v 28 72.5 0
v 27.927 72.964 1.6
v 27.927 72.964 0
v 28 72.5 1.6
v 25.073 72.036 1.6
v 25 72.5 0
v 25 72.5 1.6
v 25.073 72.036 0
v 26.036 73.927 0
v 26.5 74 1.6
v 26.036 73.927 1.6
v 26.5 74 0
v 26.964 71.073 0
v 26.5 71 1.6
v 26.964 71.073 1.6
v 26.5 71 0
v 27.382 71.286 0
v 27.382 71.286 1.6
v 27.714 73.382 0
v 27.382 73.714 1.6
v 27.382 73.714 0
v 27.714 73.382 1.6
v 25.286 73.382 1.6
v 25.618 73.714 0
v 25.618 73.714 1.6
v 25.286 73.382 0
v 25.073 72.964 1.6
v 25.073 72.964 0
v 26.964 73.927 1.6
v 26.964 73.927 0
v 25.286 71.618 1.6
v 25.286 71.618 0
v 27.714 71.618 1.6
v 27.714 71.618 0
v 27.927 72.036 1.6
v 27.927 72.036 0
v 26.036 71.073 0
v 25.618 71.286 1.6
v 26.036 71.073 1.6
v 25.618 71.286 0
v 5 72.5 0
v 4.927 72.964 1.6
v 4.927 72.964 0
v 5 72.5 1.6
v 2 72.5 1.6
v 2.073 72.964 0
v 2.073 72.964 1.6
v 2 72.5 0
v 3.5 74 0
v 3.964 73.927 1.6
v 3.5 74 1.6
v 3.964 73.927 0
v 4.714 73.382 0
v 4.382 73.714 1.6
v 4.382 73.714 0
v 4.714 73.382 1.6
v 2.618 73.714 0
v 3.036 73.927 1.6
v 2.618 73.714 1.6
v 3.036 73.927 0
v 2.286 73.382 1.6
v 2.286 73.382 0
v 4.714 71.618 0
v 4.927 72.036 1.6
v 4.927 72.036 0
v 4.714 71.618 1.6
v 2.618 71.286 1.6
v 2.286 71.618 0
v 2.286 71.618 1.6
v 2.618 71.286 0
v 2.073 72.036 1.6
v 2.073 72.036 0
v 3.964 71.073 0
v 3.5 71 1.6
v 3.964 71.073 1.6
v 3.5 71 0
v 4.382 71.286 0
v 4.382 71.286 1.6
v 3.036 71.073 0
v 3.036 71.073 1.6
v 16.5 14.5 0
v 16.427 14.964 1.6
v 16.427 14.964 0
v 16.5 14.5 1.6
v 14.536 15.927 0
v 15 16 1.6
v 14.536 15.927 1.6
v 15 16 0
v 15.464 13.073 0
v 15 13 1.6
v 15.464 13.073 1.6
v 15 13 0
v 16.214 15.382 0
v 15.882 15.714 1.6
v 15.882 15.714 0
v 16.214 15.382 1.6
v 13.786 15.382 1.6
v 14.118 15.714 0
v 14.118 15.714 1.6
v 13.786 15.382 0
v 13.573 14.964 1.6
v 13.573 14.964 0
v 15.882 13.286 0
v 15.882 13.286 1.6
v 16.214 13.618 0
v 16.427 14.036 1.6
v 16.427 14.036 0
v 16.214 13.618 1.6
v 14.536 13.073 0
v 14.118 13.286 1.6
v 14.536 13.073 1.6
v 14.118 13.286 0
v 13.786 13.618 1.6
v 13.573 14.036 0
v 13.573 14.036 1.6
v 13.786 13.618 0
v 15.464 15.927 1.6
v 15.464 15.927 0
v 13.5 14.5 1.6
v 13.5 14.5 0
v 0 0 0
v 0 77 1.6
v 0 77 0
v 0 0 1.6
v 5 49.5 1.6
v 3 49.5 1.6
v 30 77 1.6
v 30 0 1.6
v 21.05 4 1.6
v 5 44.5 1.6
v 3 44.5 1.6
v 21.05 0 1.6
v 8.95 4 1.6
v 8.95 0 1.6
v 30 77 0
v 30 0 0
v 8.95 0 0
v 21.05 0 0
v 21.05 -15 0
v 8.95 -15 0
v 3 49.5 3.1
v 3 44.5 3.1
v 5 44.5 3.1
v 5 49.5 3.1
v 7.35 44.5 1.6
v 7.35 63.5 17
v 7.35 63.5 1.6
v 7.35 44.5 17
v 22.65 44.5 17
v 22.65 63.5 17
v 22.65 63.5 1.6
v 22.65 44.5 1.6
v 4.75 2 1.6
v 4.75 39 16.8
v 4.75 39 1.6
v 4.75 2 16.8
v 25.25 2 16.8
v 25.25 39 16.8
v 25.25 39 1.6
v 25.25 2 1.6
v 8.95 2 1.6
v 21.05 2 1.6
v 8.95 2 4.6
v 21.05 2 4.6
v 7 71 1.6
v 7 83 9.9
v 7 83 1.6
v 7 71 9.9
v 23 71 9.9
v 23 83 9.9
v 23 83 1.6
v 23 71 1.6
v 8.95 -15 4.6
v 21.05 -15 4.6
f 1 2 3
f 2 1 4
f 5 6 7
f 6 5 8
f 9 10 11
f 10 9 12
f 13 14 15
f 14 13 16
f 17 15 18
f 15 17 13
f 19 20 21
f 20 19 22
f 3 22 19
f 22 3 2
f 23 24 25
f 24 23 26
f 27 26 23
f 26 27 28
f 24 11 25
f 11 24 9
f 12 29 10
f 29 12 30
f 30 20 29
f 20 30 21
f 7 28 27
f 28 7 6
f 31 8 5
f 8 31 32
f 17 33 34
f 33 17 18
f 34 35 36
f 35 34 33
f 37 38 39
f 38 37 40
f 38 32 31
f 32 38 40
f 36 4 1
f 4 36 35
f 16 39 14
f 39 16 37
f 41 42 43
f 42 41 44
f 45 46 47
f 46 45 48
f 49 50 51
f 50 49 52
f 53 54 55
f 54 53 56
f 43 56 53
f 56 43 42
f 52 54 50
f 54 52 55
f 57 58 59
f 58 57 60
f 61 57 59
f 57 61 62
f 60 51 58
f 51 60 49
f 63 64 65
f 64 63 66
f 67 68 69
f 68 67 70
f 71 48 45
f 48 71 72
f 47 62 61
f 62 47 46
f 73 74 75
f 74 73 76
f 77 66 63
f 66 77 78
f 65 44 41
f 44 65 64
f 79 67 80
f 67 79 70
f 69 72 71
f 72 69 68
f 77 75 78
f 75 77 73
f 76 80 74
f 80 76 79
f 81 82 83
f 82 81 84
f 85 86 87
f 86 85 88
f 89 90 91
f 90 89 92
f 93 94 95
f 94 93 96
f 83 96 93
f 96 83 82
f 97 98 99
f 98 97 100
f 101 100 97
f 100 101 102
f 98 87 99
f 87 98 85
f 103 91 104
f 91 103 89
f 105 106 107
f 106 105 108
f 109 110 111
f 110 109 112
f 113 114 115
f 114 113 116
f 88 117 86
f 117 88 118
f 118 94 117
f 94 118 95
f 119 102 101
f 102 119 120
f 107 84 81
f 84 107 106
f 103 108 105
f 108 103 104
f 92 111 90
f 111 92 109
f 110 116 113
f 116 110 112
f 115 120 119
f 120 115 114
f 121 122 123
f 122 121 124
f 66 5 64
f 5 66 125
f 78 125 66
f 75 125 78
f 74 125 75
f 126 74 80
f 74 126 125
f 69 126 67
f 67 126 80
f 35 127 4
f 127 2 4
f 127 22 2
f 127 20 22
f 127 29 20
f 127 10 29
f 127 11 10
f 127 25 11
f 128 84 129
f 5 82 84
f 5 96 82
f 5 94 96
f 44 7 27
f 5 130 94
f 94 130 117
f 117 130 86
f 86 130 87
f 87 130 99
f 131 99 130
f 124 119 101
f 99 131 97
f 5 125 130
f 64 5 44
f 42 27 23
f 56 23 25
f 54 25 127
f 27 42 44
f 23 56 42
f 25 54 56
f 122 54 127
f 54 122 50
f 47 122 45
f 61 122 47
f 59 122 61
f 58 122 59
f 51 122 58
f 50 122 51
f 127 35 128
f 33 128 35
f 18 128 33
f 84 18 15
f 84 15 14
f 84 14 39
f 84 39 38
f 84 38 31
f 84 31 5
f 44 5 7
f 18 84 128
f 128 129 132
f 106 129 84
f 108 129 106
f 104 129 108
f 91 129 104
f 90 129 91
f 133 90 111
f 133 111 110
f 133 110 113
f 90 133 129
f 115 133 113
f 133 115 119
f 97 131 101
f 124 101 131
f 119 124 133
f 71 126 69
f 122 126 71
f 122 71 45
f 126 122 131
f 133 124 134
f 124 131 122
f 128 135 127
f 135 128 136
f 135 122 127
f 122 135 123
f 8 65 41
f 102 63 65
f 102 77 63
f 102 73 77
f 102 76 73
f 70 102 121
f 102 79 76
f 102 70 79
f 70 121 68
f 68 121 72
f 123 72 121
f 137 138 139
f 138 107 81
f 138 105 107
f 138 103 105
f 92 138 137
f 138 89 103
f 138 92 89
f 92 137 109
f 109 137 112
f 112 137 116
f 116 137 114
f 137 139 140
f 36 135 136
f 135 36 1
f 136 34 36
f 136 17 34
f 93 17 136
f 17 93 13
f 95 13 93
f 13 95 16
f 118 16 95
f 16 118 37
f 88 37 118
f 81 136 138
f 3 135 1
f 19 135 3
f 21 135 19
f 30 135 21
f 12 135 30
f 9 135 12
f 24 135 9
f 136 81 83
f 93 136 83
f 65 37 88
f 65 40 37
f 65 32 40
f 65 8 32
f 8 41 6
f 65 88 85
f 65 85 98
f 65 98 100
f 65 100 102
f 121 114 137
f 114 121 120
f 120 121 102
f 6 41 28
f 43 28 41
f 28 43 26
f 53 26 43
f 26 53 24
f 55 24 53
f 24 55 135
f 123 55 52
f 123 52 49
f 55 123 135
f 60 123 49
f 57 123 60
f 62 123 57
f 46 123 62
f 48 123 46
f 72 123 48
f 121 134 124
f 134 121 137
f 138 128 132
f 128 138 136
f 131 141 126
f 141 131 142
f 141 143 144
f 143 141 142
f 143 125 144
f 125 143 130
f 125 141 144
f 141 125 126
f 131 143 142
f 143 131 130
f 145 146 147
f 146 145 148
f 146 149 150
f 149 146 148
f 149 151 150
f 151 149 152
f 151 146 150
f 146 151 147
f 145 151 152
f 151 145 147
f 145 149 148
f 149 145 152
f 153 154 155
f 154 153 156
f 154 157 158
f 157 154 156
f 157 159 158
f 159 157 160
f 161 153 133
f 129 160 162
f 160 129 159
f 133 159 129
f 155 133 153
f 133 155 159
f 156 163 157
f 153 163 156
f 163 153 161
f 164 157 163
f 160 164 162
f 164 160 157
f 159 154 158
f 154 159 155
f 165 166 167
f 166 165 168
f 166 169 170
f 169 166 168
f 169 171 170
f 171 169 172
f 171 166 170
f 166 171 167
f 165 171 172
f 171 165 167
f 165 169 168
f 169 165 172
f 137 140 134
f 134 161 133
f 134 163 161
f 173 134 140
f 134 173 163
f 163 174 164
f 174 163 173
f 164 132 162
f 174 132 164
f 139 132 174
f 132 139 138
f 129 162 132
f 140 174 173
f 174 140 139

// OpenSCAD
pcbWidth = 30;
pcbLength = 77;

$fn=20;

// -----------------------------------------
// -----------------------------------------
module GenericBase(xDistance, yDistance, zHeight) {
	translate([radius,radius,0]) {
		minkowski()
		{
			cube([xDistance-(radius*2), yDistance-(radius*2), (zHeight/2)]);
			cylinder(r=radius,h=(zHeight/2));
		}
	}
}

module MainPcb() {
    
    difference() {
        union() {
            cube([pcbWidth, pcbLength, 1.6]);
            
            // Add the LED.
            translate([3, 44.5,1.6]) {
                cube([2, 5, 1.5]);
                translate([1, 2.5, 1.5]) {
                    %cylinder(h=25, r=1);
                }
            }
        }
        union() {
            // Pcb Mount holes...
            
            // Hold under photon
            translate([pcbWidth/2, 14.5, -5]) {
                // NB: Does not actually come through the photon.
                #cylinder(h=30, r=1.5);
            }
            
            // Rear holes
            translate([pcbWidth/2, 72.5, -5]) {                
                
                translate([11.5, 0, 0]) {
                    #cylinder(h=30, r=1.5);
                }
                
                translate([-11.5, 0, 0]) {
                    // NB: Does not actually come through the photon.
                    #cylinder(h=30, r=1.5);
                }
            }
        }
    }
}

module UsbConnector() {
    // 15mm overhang, overall 19mm
    cube([12.1, 19, 4.6]);
}

module Relay() {
    cube([15.3, 19, 15.4]);
}

module PhotonInSocket() {
    cube([20.5, 37, 15.2]);
    
    // Add the LED.
    translate([10.3, 11.5, 3]) {
        %cylinder(h=25, r=1);
    }
    
    // Upper half of a USB plug.
    translate([(20.5/2) - (11.5/2), -18, 15.2]) {
        %cube([11.3, 25, 4.2]);
    }
}

module TerminalBlock() {
    cube([16, 12.0, 8.3]);
    
    translate([0,12.0,0]) {
        // With connector
        //%cube([16, 22, 8.3]);
    
        translate([0,0,0]) {
            %cube([16, 22-11.5, 16]);
        }
    }
}


// -----------------------------------------
// -----------------------------------------
module PcbModel() {
   
    difference() {
        union() {
            MainPcb();
            translate([(pcbWidth/2) - (12.1/2),-15, 0]) {
                UsbConnector();
            }
            
            // move to on top of PCB and in the middle.
            translate([(pcbWidth/2),0, 1.6]) {
                translate([0-(15.3/2),44.5,0]) {
                    Relay();
                }
                
                translate([0-(20.5/2),2,0]) {
                    PhotonInSocket();
                }
                
                translate([0-(16/2),71,0]) {
                    TerminalBlock();
                }
            }
        }
        union() {
            
        }
    }
}

PcbModel();
